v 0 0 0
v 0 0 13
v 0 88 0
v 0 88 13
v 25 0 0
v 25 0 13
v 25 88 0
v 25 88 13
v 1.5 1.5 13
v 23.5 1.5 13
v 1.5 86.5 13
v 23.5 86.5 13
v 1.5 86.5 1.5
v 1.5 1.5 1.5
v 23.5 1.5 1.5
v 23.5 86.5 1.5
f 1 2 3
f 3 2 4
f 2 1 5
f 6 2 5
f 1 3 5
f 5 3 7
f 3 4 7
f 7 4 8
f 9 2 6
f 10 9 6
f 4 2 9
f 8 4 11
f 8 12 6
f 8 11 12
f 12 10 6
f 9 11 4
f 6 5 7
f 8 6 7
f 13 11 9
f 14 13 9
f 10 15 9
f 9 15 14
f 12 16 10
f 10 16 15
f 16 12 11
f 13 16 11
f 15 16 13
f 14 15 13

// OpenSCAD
module pillBox() {
	difference() {
		cube([25,88,13], centered=true);
		translate([1.5,1.5,1.5]) {
			cube([22,85,20], centered=true);
		}
	}
}

pillBox();
